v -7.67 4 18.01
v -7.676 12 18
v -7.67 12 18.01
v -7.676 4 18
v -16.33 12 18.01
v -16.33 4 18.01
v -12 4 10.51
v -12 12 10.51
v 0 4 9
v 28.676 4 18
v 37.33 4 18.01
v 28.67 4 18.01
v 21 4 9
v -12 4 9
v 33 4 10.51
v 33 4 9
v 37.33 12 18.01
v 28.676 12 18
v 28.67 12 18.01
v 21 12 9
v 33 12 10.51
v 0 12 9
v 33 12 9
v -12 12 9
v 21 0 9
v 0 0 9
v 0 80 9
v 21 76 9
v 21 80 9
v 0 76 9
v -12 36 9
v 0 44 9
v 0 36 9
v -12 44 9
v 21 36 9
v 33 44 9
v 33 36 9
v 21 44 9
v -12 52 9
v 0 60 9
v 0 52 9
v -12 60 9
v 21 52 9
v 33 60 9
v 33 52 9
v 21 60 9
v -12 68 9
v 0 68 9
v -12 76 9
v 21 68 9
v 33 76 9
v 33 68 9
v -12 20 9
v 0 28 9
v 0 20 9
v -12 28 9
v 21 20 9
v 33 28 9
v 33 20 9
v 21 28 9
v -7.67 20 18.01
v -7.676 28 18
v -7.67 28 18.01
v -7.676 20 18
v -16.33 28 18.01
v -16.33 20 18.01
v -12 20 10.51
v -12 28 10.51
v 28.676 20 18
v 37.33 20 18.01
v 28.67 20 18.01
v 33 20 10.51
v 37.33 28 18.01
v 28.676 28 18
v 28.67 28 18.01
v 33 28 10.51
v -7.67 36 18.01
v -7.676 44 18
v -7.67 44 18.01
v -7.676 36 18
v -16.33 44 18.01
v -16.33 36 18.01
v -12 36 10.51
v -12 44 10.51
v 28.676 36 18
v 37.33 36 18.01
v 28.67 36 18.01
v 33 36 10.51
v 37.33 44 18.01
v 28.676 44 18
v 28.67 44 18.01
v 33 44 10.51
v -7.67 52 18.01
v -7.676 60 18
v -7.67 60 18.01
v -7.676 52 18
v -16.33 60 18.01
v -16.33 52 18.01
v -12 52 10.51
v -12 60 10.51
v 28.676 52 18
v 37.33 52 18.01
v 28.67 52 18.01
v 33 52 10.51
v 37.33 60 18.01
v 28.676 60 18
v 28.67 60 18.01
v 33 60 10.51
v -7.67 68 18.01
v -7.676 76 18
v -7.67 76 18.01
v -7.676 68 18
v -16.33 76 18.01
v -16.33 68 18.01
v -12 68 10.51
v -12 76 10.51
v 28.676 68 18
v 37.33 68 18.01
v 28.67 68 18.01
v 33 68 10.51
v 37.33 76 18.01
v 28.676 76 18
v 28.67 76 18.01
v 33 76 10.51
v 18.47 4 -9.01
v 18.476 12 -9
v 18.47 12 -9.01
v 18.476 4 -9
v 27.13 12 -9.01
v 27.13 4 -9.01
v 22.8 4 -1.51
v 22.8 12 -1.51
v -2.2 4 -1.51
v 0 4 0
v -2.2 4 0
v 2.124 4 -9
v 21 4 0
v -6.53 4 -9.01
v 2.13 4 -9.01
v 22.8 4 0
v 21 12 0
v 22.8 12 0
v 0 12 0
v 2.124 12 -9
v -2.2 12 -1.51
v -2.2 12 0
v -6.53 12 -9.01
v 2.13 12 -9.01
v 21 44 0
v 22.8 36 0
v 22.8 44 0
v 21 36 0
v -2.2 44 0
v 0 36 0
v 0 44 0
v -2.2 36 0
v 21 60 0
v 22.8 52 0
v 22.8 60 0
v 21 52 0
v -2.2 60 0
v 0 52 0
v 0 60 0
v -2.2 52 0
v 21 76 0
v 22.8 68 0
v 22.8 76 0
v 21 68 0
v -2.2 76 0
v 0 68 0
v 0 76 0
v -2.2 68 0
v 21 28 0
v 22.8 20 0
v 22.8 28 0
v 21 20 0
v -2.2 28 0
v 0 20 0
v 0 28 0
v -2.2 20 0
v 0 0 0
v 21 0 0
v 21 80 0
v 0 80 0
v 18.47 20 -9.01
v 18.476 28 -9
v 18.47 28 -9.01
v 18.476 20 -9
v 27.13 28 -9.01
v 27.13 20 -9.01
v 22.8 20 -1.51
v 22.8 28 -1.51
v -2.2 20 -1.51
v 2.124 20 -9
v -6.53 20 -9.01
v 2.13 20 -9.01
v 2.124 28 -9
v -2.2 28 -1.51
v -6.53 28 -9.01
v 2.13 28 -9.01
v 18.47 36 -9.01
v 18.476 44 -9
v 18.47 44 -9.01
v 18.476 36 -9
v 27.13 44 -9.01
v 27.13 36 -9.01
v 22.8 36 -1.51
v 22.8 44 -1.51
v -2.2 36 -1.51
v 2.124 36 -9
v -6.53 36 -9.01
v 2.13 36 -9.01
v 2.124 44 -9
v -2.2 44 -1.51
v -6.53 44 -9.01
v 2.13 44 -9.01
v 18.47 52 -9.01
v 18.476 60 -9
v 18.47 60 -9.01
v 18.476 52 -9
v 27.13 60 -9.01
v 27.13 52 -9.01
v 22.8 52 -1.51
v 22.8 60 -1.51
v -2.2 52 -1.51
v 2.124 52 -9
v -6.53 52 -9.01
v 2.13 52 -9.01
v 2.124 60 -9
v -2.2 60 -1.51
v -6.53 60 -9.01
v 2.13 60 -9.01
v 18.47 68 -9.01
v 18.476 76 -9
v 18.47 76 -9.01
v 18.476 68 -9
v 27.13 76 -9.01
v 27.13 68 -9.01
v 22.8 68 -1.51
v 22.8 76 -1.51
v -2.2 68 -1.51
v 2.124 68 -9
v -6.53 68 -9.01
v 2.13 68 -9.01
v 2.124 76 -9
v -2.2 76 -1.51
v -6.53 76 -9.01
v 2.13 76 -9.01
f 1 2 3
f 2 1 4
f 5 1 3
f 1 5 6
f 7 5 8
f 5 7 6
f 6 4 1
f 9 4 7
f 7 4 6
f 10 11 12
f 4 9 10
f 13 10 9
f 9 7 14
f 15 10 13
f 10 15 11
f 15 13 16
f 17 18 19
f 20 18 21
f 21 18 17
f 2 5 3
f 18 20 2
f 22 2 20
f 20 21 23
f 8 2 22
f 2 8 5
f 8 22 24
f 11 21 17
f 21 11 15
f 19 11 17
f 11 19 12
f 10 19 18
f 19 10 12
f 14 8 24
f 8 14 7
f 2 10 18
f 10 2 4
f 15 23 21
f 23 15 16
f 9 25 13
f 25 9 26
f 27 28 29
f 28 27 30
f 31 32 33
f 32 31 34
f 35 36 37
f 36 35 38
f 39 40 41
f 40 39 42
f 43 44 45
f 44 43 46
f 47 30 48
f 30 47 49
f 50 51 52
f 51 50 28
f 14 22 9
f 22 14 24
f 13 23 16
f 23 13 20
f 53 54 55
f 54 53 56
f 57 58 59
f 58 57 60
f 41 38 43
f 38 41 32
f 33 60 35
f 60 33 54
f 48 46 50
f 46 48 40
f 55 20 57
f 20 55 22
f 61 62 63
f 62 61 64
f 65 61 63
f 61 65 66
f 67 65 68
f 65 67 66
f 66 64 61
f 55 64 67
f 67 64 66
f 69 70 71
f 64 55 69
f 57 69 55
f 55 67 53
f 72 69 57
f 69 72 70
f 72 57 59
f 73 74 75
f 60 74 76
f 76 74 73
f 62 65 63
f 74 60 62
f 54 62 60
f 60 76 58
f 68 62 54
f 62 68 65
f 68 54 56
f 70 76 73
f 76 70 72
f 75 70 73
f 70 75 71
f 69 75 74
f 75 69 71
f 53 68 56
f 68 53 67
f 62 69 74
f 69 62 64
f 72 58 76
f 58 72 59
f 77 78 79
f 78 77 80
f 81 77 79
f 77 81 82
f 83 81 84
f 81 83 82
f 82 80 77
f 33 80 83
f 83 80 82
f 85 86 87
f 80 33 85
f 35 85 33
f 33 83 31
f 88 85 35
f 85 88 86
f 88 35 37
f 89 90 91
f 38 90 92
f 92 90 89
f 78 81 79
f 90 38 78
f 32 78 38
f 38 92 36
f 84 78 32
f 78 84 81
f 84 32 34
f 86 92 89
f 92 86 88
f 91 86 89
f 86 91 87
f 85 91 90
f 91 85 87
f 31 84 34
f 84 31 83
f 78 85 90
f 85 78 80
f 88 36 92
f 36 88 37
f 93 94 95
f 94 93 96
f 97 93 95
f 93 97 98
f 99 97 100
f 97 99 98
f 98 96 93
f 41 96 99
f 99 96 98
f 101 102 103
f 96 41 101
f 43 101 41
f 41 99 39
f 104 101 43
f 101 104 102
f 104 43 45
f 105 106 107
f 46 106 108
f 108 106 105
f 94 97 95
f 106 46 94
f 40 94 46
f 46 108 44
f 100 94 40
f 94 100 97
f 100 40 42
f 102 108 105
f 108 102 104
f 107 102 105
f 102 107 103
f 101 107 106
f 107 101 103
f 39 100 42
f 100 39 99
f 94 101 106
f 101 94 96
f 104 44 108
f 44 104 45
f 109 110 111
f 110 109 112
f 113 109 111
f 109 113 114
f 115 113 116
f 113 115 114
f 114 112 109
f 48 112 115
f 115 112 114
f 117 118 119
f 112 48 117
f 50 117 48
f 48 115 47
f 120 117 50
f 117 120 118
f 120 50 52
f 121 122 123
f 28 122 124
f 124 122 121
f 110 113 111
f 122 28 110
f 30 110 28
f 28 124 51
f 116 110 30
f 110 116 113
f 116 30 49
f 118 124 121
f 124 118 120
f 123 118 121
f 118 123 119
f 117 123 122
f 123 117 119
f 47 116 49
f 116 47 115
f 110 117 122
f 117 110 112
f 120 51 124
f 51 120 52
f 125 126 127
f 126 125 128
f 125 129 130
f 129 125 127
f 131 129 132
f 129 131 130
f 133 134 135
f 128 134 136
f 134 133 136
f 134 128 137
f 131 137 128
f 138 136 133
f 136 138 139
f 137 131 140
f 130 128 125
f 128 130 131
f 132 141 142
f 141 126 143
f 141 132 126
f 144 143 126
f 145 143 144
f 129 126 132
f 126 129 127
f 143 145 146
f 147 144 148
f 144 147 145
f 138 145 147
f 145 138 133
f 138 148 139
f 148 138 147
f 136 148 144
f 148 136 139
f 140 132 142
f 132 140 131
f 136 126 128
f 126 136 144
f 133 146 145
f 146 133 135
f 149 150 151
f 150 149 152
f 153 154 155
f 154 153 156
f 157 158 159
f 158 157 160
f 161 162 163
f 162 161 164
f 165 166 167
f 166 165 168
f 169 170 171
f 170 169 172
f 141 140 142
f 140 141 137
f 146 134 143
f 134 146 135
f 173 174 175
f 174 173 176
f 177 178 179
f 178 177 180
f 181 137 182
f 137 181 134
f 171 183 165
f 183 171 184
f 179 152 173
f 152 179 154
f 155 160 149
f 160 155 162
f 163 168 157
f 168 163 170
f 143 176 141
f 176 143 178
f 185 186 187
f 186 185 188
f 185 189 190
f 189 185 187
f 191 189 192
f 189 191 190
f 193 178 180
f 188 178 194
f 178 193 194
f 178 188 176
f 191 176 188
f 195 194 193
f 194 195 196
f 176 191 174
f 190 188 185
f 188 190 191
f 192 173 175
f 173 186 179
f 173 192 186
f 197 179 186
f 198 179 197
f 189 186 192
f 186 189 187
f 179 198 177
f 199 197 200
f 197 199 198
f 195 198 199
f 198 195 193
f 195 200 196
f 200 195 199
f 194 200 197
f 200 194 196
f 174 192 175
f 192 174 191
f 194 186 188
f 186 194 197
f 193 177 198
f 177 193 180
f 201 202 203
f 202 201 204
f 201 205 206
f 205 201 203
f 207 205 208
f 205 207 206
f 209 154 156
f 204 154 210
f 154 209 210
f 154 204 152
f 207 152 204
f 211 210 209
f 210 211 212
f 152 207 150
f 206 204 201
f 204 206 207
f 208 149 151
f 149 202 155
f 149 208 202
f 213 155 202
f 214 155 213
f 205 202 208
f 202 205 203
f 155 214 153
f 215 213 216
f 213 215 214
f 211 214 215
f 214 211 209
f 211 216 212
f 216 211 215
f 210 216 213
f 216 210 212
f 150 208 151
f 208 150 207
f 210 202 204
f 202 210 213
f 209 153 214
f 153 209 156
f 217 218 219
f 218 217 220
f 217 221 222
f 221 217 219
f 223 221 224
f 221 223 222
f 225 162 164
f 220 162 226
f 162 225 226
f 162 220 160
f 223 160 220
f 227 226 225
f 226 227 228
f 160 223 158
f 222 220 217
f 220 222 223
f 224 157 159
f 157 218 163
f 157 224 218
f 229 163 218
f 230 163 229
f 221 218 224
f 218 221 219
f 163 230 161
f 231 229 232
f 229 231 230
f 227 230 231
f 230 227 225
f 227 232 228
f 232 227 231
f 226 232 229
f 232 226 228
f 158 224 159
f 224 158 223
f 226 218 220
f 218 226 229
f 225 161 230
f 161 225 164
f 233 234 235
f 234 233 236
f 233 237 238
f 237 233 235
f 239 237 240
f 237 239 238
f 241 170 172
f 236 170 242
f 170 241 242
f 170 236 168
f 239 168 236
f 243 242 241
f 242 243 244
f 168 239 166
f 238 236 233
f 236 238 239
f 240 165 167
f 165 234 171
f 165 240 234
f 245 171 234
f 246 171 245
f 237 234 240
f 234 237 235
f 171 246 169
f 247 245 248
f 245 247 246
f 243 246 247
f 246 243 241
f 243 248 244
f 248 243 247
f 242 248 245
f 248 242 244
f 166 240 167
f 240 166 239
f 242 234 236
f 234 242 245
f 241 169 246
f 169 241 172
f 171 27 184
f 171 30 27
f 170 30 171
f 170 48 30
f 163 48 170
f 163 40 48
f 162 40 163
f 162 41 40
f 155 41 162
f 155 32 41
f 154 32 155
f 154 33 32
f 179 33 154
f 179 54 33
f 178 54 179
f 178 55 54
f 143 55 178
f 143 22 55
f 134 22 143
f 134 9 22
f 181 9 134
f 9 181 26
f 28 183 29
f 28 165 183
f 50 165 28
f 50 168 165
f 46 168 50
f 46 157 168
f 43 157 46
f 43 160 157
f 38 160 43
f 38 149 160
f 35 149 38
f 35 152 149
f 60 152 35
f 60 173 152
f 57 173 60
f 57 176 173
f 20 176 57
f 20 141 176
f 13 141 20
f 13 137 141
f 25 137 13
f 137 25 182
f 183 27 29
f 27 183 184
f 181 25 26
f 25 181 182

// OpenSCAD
inner_width = 21;
length = 80;
outer_width = 35;
height = 9;

damper();

module damper() {
    union() {
        translate([0,0,height]) {
            top(45, 8, 9);
        }
        base();
        translate([0,0,-height]) {
            bottom(25, 8, 9);
        }
    }
}

module base() {
    cube([inner_width,length,height]);
}

module top(fidgy_width, fidgy_length, fidgy_height) {
    translate([-(fidgy_width-inner_width)/2,0,0]) {
        translate([0,fidgy_length*0.5,0]) {
            fidgy(fidgy_width,fidgy_length,fidgy_height);
        }
        translate([0,fidgy_length*2.5,0]) {
            fidgy(fidgy_width,fidgy_length,fidgy_height);
        }
        translate([0,fidgy_length*4.5,0]) {
            fidgy(fidgy_width,fidgy_length,fidgy_height);
        }
        translate([0,fidgy_length*6.5,0]) {
            fidgy(fidgy_width,fidgy_length,fidgy_height);
        }
        translate([0,fidgy_length*8.5,0]) {
            fidgy(fidgy_width,fidgy_length,fidgy_height);
        }
    }
}

module bottom(fidgy_width, fidgy_length, fidgy_height) {
    translate([fidgy_width-inner_width/5,0,height]) {
        rotate([0,180,0]) {
            top(25, fidgy_length, fidgy_height);
        }
    }
}

module fidgy(w, l, h) {
    union() {
        cube([w,l,h]);
        translate([0,l,(5*1.5)-(h*0.11)]) {
            rotate([90,90,0]) {
                #cylinder(h=l,r=5, $fn=3);
            }
            translate([w,0,0]) {
                rotate([90,90,0]) {
                    #cylinder(h=l,r=5, $fn=3);
                }
            }
        }
    }
}
